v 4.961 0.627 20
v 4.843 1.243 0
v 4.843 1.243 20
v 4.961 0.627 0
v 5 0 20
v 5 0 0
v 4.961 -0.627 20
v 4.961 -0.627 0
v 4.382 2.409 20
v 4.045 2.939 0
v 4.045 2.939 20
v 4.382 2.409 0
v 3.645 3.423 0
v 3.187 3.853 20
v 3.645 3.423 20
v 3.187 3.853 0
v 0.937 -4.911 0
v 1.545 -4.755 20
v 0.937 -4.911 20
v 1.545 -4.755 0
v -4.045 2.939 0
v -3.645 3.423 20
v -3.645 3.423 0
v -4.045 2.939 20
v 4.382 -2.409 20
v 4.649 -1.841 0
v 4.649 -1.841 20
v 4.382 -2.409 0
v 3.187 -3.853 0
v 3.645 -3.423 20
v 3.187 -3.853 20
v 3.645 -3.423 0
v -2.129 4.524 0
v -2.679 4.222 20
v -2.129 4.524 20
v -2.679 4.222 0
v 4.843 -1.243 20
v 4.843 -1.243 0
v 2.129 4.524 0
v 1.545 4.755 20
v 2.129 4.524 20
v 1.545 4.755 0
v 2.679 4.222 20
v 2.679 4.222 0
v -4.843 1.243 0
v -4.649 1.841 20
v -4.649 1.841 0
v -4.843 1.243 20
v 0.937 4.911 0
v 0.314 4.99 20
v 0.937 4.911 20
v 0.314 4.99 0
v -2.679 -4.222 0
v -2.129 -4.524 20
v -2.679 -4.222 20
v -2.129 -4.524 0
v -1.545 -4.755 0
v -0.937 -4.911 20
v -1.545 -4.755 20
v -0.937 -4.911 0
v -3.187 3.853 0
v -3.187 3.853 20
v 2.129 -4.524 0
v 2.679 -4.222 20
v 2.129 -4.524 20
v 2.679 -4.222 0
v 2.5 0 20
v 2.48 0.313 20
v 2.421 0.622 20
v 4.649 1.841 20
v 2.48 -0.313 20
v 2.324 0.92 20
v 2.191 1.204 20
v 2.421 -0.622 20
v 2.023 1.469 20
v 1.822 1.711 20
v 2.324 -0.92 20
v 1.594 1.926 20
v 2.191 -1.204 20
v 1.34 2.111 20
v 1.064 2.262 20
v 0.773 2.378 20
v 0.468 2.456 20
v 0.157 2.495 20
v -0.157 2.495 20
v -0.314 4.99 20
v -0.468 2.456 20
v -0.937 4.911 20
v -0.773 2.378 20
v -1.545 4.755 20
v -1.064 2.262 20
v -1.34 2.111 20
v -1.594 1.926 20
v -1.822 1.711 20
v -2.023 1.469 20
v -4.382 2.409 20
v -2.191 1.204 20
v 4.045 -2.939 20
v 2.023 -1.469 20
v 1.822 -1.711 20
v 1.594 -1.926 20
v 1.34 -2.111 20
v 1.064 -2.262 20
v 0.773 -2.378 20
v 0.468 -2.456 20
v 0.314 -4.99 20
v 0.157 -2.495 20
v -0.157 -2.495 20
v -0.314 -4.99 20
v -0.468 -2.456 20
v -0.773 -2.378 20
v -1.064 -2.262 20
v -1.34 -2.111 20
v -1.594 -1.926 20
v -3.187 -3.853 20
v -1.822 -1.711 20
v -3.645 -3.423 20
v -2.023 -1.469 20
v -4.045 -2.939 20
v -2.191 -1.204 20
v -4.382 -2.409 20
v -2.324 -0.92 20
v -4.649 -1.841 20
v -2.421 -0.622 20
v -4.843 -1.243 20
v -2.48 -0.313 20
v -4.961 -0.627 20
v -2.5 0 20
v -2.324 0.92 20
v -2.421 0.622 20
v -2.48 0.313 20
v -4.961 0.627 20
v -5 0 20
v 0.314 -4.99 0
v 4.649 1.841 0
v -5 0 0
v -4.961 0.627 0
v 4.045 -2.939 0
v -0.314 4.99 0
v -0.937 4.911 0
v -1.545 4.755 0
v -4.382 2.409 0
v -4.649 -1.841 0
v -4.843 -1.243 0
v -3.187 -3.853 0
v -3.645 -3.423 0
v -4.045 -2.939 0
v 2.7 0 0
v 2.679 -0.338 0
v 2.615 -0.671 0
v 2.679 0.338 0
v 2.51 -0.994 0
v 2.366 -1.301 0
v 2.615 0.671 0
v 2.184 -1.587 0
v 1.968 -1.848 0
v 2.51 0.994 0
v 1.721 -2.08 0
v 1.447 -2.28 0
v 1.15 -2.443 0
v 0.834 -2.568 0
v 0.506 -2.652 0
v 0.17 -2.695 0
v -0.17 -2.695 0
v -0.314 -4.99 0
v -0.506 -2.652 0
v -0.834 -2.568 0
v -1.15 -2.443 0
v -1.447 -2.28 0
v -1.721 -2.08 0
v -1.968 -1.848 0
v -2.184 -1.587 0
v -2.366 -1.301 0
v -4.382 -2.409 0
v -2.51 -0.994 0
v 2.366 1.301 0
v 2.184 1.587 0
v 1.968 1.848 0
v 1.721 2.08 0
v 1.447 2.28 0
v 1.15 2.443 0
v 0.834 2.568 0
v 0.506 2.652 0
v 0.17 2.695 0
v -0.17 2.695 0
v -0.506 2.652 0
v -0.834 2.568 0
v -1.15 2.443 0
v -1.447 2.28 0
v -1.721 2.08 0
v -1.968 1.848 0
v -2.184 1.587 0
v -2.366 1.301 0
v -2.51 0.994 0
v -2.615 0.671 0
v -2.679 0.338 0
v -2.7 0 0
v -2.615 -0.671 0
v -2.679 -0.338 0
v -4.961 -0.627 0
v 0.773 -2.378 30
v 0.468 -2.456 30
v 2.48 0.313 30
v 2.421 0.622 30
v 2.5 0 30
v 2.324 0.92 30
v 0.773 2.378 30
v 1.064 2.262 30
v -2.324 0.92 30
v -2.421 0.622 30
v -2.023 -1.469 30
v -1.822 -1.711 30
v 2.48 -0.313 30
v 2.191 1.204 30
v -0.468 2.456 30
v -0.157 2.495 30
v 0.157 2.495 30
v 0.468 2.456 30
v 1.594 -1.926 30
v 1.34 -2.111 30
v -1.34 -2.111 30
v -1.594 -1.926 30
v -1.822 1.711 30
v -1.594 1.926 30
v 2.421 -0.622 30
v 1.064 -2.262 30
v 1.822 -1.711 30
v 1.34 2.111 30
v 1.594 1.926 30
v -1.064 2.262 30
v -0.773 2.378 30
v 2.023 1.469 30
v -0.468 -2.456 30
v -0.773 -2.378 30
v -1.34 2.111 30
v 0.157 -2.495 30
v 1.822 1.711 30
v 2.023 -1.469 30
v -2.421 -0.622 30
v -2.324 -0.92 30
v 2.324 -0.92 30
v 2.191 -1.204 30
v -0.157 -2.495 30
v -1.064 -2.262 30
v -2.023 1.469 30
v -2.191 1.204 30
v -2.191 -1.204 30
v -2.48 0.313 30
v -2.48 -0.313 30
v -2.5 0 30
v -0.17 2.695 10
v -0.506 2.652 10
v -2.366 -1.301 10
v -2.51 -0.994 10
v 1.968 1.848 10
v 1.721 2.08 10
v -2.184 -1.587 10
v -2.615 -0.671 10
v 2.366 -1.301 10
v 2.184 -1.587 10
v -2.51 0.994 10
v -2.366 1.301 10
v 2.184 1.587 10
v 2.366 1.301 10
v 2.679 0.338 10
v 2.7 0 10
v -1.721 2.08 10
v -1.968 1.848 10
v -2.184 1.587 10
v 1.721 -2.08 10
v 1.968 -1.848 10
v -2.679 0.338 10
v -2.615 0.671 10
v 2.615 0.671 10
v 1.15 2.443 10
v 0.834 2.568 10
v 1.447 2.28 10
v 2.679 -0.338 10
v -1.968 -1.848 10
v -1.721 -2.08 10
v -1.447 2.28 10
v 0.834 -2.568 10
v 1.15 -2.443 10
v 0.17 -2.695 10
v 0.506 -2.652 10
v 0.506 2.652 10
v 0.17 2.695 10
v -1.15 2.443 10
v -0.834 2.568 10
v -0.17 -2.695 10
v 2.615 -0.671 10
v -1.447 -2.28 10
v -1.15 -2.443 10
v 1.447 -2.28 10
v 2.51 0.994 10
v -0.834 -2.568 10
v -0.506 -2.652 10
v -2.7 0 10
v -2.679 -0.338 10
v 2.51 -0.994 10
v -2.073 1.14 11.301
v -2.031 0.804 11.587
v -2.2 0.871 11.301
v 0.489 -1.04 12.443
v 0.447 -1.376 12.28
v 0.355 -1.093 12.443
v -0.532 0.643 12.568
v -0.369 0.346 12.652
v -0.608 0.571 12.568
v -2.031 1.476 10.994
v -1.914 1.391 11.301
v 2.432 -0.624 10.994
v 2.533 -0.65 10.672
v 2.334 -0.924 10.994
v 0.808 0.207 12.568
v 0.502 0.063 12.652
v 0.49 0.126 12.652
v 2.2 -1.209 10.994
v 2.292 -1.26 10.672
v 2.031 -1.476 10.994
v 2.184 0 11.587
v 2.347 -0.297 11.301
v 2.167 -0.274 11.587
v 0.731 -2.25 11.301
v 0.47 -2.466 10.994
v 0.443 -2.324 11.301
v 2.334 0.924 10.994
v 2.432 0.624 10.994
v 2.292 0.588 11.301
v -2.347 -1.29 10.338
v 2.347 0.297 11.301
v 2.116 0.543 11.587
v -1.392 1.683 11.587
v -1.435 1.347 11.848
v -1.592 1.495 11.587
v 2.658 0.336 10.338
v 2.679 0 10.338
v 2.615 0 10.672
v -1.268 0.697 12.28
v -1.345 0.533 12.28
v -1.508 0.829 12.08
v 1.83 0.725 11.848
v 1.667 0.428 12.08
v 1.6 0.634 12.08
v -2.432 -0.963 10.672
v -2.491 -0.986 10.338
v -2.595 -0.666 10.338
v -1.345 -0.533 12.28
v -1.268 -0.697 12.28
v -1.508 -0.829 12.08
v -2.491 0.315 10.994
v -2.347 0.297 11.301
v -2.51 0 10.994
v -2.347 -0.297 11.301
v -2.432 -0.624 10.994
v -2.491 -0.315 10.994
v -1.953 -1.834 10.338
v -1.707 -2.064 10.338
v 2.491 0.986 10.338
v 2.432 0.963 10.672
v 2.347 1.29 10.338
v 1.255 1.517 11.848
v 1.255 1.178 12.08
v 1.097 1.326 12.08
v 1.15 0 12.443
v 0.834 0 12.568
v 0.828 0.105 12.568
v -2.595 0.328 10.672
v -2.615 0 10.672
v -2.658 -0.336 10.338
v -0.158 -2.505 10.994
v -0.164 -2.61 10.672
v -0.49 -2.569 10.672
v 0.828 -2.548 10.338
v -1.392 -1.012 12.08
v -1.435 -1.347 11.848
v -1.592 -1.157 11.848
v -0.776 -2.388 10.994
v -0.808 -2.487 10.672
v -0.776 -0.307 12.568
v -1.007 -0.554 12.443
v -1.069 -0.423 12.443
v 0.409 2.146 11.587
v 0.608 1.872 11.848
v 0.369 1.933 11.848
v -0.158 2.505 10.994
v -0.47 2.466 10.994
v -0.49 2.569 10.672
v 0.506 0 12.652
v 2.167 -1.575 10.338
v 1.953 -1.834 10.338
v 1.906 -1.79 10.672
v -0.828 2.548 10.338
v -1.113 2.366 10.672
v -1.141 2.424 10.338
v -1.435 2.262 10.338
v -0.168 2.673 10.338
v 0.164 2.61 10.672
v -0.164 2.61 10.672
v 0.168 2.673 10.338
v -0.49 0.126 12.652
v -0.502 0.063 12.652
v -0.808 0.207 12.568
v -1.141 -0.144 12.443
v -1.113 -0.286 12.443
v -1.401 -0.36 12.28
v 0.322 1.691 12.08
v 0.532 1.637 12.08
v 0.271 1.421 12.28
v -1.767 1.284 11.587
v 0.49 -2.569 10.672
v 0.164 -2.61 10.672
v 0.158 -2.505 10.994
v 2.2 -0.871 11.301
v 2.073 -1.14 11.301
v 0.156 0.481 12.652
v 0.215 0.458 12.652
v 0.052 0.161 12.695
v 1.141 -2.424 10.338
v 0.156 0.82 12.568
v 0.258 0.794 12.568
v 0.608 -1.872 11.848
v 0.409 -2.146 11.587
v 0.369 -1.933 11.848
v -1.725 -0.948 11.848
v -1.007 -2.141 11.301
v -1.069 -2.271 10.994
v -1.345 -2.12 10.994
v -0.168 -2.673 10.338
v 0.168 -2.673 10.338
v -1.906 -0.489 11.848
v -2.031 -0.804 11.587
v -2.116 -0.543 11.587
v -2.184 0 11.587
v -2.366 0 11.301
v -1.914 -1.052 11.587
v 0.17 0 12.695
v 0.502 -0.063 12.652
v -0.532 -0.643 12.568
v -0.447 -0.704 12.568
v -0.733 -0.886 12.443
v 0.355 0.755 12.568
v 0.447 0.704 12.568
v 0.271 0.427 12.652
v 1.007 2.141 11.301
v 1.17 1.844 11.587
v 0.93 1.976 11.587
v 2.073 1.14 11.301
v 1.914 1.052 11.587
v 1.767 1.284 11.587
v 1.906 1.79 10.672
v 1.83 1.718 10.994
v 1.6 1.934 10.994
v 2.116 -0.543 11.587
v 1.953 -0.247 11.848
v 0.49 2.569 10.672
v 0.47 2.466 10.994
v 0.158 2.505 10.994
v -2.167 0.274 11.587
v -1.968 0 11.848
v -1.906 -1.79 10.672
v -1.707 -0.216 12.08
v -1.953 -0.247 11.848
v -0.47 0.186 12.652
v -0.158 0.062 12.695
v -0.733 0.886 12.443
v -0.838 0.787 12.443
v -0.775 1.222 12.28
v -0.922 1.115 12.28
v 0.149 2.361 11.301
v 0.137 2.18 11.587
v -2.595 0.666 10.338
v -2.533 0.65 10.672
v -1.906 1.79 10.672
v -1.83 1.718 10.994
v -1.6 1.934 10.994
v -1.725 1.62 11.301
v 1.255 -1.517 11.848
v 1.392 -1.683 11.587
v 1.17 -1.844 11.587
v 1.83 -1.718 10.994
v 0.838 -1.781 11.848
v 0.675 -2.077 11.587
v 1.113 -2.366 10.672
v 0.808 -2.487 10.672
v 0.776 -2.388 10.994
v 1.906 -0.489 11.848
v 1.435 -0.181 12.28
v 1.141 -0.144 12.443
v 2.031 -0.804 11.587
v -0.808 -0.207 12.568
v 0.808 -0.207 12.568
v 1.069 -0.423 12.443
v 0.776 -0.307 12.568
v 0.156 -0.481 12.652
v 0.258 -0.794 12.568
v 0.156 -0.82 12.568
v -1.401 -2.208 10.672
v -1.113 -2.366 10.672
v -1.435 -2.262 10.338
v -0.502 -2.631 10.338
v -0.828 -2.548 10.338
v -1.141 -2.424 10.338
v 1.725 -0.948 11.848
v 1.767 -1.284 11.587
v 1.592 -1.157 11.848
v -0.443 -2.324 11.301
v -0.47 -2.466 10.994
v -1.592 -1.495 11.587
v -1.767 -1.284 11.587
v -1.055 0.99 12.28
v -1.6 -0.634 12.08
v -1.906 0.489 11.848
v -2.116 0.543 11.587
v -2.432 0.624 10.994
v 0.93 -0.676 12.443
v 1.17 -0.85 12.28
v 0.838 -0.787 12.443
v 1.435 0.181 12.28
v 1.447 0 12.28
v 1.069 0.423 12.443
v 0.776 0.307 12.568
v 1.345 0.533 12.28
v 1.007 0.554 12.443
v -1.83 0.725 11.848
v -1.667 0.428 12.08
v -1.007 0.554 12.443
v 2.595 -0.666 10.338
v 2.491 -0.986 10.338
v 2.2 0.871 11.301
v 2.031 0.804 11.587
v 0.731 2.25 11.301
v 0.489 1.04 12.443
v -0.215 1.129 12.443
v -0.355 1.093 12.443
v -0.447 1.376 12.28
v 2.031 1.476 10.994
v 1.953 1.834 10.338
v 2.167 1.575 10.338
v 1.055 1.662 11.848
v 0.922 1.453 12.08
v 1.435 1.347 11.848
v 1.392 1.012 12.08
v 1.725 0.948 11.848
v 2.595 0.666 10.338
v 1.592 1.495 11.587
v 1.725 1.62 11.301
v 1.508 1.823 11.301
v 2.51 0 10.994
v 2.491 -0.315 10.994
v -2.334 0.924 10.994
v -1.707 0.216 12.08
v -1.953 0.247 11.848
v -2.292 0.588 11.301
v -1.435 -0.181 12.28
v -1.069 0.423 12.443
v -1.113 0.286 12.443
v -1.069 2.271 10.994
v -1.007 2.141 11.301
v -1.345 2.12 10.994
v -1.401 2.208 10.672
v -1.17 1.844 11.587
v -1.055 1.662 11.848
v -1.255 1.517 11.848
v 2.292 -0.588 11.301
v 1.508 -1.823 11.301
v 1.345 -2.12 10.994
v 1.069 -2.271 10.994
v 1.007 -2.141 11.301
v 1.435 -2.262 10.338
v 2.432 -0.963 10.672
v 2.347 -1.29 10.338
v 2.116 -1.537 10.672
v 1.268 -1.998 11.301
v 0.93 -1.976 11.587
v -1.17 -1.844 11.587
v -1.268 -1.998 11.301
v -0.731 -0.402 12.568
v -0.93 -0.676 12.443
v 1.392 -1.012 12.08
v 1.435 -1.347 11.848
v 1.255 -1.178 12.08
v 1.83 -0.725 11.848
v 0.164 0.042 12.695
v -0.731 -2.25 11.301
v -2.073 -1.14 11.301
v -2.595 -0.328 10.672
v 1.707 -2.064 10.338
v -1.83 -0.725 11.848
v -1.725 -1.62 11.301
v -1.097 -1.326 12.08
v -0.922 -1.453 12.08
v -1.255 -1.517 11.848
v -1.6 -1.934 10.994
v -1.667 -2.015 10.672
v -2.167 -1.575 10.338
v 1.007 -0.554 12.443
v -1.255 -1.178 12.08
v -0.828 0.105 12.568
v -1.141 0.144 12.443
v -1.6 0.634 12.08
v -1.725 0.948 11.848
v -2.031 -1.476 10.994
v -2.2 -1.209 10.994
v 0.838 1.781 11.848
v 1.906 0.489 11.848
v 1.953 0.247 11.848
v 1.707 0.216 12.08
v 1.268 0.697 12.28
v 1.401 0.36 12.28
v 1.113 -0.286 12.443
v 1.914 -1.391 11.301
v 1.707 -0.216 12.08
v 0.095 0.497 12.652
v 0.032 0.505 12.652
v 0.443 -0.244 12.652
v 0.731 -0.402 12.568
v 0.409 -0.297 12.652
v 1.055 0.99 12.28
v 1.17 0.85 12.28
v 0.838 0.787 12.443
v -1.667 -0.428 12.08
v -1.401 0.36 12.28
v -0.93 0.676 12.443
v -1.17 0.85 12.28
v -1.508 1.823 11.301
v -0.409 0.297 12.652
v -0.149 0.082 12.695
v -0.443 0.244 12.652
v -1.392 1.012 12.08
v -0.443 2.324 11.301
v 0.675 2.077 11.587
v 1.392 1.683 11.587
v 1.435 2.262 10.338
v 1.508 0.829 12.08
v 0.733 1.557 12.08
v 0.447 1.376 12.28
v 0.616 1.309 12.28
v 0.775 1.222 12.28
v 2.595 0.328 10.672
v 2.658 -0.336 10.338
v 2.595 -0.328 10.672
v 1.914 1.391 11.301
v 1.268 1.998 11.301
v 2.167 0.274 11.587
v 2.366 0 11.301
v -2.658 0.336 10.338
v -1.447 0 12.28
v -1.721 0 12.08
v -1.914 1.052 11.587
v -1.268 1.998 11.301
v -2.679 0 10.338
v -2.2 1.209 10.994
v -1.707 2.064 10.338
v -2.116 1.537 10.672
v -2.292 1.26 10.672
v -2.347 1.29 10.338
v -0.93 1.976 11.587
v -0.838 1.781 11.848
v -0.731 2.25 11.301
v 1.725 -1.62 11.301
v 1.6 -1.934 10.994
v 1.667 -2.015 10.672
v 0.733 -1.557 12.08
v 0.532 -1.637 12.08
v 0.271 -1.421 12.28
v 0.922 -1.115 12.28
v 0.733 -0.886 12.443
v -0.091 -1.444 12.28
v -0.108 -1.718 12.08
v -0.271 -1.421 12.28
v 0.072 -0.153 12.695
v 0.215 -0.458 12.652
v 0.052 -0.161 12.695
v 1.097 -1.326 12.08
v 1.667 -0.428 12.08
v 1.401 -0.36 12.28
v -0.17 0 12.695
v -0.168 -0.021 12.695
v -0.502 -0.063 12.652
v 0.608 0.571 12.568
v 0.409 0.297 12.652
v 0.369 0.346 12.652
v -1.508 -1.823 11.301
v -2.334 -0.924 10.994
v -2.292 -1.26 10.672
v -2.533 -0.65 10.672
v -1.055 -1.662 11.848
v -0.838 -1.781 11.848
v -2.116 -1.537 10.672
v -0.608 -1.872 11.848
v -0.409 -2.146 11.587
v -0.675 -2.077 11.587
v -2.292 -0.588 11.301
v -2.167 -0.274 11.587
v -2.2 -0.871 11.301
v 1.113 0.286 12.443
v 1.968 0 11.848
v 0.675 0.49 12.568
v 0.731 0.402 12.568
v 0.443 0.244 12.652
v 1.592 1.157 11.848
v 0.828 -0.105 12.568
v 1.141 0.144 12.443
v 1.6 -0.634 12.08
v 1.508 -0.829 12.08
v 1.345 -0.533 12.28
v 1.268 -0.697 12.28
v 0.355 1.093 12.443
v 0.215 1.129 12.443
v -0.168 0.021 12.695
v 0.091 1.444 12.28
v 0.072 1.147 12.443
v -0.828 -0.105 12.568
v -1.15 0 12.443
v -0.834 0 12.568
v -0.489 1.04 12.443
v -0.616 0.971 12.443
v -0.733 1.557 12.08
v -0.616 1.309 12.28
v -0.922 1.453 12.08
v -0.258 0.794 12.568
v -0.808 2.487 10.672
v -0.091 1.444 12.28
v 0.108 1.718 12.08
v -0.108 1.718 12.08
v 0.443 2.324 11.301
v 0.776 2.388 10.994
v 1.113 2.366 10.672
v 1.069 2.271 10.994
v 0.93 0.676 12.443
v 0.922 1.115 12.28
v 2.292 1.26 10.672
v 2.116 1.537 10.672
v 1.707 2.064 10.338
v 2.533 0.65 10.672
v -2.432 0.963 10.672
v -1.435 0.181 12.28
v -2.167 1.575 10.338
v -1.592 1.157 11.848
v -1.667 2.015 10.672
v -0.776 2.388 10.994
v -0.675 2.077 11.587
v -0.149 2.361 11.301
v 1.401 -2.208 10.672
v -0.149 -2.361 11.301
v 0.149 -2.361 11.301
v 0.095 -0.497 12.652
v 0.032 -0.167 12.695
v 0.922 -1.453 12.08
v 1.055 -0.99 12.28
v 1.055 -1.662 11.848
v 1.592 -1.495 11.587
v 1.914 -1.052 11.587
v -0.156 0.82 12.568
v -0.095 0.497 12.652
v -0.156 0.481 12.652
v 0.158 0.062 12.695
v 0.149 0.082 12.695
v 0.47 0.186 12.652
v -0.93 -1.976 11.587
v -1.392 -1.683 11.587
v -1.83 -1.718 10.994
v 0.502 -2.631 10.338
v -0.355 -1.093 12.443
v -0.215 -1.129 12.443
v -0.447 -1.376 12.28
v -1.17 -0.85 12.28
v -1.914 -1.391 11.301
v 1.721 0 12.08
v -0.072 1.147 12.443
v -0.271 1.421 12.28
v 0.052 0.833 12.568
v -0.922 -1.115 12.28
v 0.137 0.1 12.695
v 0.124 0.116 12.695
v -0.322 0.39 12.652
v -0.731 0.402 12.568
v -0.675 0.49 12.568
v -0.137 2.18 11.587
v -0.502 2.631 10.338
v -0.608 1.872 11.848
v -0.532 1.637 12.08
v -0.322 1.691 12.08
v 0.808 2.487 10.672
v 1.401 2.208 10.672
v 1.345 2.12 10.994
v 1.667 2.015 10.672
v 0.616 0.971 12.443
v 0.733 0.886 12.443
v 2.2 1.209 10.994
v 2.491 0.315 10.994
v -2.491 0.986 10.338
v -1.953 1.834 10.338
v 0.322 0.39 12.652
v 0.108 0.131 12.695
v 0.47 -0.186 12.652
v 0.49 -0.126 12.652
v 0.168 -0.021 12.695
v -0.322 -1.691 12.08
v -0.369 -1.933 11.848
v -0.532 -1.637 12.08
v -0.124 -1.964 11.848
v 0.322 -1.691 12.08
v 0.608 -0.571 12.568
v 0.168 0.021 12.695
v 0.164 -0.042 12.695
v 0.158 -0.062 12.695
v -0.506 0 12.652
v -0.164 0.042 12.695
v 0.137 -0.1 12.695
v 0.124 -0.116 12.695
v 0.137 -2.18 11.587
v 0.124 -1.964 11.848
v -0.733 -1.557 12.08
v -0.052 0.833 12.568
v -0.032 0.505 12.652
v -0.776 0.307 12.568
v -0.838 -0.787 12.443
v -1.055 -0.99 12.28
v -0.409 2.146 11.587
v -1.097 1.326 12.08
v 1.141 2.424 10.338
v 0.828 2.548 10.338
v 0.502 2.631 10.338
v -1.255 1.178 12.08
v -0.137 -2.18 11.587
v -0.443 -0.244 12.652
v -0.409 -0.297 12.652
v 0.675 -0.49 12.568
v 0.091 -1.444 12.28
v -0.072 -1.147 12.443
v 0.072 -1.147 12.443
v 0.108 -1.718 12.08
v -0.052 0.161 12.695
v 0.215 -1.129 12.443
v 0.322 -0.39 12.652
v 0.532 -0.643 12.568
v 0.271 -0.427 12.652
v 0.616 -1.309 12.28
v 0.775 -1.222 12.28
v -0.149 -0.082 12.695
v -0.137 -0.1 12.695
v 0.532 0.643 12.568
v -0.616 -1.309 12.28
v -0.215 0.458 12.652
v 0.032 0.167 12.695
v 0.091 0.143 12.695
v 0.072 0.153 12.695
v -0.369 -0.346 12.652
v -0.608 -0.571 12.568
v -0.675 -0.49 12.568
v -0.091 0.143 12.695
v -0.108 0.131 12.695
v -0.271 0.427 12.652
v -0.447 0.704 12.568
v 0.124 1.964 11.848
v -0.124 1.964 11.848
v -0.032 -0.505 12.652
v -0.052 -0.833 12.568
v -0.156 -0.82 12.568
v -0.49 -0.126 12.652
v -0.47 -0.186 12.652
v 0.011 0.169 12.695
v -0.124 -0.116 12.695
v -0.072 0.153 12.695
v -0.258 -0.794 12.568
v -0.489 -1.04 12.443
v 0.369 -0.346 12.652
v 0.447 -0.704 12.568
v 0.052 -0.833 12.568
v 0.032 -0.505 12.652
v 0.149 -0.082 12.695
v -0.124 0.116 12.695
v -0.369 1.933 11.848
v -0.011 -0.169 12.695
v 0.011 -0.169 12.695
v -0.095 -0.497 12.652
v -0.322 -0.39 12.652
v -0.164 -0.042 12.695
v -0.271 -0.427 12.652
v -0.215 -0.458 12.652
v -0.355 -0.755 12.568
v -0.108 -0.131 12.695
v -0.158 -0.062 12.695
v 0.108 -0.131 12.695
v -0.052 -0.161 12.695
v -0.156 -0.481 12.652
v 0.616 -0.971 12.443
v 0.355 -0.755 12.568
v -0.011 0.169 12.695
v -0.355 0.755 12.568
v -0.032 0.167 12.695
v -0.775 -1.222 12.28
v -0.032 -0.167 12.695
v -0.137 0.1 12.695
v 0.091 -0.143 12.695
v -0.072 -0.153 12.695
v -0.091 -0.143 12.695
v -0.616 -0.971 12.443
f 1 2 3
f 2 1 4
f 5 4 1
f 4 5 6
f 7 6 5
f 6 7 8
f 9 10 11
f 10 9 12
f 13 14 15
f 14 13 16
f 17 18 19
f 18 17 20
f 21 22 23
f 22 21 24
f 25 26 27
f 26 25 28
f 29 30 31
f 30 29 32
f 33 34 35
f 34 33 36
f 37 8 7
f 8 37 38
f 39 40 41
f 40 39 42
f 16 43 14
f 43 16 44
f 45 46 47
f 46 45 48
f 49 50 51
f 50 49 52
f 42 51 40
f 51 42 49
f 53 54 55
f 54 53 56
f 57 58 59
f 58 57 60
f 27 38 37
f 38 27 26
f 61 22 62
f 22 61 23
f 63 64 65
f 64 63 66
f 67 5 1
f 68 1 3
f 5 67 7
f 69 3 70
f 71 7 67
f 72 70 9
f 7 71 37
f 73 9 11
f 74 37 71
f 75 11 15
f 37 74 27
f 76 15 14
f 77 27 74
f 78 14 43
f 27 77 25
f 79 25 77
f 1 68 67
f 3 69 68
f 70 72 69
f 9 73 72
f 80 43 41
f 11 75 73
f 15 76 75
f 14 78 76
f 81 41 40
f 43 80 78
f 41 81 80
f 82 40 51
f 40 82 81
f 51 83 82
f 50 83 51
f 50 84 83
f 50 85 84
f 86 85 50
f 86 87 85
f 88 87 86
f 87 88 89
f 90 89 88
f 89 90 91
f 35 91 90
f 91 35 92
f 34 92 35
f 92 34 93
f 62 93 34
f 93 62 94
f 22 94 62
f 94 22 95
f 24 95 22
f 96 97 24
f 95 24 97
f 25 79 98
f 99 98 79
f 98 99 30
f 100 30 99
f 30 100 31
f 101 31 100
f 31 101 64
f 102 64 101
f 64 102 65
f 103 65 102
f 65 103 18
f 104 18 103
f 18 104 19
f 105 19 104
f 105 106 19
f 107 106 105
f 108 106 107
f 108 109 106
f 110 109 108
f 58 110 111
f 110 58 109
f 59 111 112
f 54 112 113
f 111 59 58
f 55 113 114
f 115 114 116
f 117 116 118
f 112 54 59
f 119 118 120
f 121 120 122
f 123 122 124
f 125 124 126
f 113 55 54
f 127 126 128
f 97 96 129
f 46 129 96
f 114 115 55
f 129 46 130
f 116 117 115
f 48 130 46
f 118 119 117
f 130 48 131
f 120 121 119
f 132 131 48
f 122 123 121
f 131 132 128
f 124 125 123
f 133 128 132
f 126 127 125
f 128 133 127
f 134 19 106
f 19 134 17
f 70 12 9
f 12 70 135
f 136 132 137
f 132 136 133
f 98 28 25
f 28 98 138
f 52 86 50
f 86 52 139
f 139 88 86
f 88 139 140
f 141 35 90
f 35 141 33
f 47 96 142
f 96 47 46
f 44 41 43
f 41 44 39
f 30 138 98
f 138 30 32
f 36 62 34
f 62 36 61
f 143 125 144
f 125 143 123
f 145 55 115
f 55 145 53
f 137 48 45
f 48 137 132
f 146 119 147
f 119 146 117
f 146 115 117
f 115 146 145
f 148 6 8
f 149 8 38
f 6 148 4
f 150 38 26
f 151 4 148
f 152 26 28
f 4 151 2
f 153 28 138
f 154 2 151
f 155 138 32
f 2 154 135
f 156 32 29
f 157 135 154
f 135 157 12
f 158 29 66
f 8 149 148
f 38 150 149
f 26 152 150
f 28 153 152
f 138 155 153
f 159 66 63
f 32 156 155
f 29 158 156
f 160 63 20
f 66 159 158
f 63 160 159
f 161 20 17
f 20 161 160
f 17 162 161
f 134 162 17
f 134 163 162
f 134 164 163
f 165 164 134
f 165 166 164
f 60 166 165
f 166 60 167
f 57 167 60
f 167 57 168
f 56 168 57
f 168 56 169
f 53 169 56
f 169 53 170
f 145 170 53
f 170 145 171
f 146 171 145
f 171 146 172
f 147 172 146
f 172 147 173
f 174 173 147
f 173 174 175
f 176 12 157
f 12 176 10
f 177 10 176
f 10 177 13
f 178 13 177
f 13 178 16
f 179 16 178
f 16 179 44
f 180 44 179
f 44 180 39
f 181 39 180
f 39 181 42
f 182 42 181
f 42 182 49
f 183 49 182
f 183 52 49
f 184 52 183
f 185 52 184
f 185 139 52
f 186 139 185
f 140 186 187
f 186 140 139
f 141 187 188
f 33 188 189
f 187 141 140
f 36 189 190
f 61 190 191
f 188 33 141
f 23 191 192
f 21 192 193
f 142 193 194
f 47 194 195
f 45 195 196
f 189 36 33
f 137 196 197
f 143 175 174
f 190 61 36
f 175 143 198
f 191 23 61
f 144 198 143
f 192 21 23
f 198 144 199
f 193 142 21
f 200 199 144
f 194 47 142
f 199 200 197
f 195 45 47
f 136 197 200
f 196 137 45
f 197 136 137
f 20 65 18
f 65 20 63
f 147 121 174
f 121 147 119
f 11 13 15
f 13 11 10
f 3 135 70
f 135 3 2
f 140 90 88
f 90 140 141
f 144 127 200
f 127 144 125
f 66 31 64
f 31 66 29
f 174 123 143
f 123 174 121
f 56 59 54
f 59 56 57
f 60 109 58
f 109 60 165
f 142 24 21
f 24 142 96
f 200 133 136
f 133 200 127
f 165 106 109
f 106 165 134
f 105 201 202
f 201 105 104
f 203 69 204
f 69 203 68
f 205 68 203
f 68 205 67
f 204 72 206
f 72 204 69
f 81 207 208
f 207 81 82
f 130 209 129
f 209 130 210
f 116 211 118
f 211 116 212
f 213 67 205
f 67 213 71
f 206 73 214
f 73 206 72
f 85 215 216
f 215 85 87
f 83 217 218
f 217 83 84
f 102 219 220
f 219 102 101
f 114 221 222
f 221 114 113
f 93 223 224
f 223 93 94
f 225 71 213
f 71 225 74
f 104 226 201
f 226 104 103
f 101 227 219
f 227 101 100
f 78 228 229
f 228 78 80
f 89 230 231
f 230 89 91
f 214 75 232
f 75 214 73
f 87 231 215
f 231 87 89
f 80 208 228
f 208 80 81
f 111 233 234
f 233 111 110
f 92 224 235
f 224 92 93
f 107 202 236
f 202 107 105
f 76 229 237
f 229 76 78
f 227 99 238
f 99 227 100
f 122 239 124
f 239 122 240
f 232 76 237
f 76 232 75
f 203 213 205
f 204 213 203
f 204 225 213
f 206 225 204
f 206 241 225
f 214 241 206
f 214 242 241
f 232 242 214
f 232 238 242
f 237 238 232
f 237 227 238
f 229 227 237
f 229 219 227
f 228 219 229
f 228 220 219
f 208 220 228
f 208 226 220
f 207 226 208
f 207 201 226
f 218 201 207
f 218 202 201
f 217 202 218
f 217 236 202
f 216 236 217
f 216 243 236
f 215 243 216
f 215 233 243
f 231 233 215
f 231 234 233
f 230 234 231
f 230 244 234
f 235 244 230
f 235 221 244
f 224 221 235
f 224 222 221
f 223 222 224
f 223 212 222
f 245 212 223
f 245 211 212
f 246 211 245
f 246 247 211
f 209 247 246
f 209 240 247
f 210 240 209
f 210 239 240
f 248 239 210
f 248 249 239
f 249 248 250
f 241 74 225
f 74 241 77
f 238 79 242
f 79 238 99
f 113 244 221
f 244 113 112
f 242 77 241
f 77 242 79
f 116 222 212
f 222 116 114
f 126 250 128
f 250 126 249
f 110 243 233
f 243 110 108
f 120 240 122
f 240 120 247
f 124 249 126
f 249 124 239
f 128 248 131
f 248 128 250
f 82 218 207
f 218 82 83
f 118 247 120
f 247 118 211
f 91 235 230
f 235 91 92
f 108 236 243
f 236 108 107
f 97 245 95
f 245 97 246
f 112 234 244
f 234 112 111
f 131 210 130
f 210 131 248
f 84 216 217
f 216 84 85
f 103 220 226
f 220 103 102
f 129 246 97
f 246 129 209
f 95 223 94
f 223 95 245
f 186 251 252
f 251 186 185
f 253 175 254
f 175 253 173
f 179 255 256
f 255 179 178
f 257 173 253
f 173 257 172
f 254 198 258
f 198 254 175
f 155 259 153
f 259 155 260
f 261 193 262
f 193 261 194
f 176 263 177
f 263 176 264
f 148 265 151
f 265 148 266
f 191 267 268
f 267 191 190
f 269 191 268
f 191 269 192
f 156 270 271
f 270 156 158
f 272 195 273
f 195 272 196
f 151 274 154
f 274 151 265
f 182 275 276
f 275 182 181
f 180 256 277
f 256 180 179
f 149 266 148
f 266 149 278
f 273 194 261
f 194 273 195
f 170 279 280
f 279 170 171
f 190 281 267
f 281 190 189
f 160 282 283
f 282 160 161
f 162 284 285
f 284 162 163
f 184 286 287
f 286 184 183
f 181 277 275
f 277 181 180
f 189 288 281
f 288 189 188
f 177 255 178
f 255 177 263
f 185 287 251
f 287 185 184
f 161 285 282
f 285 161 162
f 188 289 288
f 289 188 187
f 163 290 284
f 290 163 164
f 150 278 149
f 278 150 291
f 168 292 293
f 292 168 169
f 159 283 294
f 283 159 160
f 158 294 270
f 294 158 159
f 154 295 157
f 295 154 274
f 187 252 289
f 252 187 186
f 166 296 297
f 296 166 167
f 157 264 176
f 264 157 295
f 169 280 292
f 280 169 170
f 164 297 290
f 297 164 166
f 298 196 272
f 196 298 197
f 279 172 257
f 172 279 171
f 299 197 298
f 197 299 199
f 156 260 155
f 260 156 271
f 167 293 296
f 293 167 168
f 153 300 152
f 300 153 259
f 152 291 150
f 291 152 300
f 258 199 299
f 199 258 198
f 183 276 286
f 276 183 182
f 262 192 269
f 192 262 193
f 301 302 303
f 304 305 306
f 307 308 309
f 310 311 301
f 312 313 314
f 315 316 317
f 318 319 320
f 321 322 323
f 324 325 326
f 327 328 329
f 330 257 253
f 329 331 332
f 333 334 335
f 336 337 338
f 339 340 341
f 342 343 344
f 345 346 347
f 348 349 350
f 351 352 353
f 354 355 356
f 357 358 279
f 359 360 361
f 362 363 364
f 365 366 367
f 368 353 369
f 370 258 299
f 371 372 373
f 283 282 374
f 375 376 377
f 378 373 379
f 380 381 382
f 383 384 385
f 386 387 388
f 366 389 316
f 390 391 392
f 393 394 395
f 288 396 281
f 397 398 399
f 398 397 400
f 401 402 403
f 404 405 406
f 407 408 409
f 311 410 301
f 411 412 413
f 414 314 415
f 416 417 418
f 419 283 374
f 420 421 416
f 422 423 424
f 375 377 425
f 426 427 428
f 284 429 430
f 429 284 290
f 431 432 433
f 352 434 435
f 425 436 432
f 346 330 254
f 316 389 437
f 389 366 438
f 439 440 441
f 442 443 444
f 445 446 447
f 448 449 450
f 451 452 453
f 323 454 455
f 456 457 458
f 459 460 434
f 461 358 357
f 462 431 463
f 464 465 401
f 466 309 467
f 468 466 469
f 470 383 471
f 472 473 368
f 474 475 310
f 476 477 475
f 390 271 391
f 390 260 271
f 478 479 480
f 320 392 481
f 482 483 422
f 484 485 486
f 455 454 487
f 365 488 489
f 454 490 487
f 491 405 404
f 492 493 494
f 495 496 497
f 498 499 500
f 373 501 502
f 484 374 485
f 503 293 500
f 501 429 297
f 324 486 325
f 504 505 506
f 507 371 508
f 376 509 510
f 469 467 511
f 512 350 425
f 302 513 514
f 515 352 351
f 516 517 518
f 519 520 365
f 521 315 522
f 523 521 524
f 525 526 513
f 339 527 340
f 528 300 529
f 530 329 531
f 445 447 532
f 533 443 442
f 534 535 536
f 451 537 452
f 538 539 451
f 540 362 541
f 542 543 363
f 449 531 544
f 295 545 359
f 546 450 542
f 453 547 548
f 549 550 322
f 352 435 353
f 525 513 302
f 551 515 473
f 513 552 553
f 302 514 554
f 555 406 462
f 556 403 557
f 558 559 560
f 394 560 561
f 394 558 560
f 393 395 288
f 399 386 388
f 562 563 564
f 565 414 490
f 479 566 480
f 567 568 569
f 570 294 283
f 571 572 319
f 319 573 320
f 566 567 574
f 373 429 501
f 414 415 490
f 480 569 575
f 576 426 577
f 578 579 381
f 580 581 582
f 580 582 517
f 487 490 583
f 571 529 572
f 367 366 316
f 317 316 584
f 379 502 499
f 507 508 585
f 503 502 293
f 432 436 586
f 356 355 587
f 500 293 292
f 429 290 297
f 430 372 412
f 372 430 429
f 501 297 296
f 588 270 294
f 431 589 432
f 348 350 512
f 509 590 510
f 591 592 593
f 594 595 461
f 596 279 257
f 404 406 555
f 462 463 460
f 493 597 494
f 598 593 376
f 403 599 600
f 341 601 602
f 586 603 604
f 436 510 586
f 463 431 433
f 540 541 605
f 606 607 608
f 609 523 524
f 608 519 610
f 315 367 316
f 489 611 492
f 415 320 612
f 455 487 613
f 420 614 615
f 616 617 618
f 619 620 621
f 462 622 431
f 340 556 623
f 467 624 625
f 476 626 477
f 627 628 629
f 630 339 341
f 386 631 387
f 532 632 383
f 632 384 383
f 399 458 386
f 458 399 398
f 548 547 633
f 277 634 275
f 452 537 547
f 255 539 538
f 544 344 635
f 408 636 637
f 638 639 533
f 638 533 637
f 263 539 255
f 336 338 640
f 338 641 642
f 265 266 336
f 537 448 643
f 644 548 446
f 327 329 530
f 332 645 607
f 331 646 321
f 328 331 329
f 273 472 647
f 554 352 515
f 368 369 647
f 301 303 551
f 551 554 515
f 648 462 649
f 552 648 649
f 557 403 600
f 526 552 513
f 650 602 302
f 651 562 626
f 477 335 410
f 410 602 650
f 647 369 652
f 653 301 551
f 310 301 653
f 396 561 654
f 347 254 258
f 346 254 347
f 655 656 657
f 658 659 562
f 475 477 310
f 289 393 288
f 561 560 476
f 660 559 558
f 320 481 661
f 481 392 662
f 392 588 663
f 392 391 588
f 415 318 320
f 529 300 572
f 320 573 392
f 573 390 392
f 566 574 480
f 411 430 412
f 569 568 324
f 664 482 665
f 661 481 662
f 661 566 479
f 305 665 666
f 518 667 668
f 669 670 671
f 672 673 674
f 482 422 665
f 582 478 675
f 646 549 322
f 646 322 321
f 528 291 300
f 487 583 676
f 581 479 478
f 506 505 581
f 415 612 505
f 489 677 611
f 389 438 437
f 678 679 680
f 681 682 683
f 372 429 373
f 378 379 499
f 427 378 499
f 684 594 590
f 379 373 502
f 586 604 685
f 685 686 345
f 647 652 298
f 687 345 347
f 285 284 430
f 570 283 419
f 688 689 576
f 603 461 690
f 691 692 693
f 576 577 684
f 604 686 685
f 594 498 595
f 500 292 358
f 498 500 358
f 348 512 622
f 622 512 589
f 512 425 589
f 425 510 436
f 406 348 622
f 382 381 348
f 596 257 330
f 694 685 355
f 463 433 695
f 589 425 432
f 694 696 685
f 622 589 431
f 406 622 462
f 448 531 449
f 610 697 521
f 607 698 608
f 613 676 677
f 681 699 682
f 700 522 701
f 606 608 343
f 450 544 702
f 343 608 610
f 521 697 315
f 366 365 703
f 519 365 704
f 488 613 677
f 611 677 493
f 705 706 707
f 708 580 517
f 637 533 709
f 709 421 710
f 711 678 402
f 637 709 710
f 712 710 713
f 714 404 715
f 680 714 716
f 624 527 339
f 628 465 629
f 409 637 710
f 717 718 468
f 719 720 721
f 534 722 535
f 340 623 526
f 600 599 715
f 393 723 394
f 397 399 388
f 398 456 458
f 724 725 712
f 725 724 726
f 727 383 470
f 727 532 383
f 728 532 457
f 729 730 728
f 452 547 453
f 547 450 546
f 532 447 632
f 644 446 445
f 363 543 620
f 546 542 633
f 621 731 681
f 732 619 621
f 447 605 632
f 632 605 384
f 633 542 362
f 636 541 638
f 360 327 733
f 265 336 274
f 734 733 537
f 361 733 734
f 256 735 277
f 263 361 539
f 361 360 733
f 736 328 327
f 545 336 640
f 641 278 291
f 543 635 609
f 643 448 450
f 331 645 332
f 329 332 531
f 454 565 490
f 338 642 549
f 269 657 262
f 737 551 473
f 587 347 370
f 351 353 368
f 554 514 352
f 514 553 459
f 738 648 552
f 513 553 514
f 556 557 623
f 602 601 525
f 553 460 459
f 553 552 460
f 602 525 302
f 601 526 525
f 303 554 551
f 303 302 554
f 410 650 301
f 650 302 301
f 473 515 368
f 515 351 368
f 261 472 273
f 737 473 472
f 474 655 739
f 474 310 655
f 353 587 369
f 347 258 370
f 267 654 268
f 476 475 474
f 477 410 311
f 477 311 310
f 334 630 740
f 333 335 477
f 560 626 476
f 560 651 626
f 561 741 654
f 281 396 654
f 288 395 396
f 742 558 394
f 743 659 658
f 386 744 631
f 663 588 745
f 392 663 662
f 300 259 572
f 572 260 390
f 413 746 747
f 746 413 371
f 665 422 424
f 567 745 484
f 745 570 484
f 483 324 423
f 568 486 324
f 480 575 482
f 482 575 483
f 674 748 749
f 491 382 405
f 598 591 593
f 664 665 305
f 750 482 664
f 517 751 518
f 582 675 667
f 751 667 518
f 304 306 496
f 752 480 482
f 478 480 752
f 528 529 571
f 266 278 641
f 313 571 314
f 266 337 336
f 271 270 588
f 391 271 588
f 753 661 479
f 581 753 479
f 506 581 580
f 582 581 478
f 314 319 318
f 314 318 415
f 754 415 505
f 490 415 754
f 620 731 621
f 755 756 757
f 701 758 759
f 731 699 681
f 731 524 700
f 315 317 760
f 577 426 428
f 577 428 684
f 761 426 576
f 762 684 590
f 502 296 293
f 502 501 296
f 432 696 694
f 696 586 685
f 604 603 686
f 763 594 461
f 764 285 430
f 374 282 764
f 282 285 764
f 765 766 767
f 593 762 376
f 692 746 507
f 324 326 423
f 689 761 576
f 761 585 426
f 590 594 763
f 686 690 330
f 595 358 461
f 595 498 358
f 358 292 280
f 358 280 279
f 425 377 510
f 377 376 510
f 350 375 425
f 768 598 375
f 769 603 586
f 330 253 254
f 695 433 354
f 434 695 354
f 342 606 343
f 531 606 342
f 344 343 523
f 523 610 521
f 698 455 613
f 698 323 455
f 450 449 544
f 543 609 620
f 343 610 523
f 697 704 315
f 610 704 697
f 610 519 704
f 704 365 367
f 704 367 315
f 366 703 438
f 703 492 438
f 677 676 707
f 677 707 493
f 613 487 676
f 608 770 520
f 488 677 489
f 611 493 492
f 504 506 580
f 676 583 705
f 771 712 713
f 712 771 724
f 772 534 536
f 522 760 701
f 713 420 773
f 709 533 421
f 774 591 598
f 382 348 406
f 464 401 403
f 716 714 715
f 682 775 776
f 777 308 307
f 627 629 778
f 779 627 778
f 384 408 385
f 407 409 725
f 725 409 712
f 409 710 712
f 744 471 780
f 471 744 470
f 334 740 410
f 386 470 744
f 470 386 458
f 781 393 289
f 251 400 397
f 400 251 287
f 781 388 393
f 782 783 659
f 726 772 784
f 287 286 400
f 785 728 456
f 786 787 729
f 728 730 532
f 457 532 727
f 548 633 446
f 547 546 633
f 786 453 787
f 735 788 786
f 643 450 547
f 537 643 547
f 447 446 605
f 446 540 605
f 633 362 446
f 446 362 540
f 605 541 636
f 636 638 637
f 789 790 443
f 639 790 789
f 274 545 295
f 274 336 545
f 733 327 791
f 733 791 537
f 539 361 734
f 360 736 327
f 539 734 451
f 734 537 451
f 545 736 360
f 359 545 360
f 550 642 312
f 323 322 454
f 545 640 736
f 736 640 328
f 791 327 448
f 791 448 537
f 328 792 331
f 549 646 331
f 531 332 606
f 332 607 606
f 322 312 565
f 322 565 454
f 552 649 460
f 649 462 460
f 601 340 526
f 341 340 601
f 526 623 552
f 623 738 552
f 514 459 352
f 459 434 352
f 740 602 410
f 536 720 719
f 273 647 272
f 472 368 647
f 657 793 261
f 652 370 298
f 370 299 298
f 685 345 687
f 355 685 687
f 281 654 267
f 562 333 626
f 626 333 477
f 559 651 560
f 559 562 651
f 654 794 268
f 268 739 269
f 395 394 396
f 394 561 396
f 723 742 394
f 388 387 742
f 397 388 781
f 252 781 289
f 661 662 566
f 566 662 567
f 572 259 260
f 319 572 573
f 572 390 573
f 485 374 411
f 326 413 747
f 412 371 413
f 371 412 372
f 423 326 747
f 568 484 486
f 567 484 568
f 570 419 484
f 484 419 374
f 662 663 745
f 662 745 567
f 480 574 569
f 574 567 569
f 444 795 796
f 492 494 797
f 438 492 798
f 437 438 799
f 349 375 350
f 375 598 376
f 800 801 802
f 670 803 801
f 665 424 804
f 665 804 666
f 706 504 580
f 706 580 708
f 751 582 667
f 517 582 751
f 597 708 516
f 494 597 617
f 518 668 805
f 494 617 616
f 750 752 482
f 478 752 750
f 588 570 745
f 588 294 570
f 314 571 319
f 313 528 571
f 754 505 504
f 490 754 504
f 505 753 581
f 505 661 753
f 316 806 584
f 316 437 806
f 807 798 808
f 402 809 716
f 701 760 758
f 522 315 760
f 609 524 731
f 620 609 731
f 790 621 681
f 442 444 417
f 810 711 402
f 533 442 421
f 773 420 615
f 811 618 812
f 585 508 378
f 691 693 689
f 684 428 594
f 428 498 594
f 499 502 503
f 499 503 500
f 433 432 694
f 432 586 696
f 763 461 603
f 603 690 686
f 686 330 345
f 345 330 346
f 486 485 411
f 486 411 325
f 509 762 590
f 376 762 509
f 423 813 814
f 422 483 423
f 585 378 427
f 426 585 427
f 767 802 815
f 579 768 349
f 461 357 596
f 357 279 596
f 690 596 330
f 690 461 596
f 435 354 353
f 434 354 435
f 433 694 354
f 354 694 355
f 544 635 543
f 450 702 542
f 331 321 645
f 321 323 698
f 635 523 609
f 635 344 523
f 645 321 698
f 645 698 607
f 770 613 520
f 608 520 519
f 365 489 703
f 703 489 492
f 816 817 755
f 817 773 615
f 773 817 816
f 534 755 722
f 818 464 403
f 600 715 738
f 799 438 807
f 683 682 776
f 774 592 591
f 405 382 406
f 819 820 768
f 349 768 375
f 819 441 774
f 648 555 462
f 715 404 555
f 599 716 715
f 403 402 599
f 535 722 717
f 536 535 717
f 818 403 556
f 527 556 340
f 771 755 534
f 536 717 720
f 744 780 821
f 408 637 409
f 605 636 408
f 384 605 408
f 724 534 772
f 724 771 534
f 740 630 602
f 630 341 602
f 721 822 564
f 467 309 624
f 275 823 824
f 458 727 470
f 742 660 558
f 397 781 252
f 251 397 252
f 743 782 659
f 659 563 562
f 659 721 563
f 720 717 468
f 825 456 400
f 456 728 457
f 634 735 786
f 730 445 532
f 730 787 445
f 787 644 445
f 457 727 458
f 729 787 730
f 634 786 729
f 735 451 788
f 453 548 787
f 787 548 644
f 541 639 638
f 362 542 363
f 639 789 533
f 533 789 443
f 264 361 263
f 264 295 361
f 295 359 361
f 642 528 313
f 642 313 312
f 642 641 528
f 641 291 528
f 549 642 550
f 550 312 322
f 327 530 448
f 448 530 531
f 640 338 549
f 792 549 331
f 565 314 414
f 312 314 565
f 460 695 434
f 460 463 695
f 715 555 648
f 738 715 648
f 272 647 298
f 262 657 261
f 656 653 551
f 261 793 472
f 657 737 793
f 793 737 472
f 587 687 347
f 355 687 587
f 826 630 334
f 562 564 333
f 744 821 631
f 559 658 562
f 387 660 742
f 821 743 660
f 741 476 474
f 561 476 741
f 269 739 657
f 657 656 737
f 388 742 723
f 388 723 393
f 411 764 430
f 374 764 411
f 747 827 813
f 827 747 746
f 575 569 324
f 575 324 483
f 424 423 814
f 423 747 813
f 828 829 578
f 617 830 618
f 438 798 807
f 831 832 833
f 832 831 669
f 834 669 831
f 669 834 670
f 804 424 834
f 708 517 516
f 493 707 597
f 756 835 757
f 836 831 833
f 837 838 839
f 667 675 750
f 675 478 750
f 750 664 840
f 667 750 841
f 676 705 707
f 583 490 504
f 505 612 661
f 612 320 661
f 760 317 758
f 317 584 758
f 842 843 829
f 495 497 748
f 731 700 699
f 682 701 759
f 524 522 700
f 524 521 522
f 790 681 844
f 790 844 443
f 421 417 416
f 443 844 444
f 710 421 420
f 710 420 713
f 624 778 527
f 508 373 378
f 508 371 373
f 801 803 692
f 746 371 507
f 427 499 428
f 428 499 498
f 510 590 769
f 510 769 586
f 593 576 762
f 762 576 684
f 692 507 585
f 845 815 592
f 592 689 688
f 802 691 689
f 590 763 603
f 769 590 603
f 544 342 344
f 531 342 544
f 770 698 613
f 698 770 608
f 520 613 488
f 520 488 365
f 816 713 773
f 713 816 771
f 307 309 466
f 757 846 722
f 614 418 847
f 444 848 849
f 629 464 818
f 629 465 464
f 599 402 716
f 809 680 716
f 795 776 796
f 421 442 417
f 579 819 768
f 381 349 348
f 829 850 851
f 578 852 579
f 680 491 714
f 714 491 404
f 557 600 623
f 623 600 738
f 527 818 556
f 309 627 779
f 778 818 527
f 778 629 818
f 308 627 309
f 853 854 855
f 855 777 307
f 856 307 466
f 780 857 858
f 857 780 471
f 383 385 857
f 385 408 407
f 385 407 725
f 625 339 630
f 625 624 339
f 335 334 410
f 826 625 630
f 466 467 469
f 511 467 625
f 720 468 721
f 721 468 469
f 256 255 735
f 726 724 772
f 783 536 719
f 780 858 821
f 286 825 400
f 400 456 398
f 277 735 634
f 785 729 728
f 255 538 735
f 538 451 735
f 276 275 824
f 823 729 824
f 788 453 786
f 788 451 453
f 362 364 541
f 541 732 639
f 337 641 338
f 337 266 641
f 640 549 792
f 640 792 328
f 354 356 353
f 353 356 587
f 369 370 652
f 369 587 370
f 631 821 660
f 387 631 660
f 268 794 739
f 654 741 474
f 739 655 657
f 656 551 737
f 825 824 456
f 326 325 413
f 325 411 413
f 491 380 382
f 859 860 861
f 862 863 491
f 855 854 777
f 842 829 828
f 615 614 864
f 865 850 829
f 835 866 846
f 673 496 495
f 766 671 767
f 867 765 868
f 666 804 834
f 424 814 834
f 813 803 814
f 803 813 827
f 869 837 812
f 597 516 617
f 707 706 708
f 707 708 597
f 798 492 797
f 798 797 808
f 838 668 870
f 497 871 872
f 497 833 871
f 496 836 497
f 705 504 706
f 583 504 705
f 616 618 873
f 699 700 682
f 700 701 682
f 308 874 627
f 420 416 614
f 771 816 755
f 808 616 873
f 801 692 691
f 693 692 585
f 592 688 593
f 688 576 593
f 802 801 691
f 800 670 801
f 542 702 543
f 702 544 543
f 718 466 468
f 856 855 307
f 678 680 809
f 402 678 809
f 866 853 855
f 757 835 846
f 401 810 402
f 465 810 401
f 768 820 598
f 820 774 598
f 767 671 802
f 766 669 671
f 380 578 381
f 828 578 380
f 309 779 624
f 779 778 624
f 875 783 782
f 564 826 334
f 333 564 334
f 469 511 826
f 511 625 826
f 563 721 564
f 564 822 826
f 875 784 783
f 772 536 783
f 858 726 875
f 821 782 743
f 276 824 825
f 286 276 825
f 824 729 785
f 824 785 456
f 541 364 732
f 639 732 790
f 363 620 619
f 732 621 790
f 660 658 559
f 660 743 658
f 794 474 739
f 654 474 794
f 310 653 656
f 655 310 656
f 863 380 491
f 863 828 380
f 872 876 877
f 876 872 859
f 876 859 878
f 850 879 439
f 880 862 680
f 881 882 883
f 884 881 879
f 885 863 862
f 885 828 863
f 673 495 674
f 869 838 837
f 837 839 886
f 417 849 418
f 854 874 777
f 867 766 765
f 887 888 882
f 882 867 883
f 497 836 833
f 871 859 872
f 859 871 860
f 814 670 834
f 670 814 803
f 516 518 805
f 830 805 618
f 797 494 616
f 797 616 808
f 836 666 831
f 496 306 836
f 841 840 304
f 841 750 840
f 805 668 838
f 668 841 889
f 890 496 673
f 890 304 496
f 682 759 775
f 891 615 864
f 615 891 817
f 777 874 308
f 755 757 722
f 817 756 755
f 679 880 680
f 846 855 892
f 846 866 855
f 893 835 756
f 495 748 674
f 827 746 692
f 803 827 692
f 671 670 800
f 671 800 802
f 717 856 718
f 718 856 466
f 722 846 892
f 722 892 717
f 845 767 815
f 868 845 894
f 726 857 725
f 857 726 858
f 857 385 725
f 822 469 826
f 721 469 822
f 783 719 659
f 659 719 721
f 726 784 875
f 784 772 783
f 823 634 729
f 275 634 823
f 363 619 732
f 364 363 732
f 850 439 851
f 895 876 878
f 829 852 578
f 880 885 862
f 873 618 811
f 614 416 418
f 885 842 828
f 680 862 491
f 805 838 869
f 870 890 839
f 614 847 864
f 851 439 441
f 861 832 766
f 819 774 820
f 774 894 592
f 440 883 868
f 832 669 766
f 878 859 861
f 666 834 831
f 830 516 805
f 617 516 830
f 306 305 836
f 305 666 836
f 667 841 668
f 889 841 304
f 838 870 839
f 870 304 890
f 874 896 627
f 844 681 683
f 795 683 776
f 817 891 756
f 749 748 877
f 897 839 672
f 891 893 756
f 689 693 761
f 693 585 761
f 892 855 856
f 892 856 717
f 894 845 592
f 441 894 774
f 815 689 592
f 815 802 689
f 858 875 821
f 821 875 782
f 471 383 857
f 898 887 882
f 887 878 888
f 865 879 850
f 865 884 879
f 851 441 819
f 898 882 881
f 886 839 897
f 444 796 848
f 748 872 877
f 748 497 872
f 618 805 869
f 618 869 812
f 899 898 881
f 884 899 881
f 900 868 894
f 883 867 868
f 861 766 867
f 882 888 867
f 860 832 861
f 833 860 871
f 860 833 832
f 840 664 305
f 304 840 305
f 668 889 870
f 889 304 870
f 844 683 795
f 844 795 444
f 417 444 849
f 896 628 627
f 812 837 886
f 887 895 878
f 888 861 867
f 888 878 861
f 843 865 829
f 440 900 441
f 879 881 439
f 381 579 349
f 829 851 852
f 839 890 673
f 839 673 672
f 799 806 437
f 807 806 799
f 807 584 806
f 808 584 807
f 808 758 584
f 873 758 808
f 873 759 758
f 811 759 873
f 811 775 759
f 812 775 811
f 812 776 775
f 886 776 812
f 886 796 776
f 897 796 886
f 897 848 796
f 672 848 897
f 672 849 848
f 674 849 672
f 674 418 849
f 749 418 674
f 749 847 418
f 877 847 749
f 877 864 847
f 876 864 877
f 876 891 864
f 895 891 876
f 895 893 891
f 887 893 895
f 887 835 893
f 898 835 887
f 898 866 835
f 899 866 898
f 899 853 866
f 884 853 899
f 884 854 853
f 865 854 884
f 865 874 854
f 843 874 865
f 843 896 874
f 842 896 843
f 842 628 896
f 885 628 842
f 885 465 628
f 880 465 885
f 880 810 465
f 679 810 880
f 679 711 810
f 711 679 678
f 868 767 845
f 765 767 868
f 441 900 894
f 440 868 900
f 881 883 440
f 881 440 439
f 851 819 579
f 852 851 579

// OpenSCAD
$fn=50;

module target(){

	cylinder(h=20, r=5);

	translate([0, 0, 20]){

		cylinder(h=10, r=2.5);

	}

}

module tool(){

	cylinder(h=10, r=2.7);

	translate([0, 0, 10]){

		sphere(r=2.7);

	}

}

difference(){

	target();

	tool();
	
}
